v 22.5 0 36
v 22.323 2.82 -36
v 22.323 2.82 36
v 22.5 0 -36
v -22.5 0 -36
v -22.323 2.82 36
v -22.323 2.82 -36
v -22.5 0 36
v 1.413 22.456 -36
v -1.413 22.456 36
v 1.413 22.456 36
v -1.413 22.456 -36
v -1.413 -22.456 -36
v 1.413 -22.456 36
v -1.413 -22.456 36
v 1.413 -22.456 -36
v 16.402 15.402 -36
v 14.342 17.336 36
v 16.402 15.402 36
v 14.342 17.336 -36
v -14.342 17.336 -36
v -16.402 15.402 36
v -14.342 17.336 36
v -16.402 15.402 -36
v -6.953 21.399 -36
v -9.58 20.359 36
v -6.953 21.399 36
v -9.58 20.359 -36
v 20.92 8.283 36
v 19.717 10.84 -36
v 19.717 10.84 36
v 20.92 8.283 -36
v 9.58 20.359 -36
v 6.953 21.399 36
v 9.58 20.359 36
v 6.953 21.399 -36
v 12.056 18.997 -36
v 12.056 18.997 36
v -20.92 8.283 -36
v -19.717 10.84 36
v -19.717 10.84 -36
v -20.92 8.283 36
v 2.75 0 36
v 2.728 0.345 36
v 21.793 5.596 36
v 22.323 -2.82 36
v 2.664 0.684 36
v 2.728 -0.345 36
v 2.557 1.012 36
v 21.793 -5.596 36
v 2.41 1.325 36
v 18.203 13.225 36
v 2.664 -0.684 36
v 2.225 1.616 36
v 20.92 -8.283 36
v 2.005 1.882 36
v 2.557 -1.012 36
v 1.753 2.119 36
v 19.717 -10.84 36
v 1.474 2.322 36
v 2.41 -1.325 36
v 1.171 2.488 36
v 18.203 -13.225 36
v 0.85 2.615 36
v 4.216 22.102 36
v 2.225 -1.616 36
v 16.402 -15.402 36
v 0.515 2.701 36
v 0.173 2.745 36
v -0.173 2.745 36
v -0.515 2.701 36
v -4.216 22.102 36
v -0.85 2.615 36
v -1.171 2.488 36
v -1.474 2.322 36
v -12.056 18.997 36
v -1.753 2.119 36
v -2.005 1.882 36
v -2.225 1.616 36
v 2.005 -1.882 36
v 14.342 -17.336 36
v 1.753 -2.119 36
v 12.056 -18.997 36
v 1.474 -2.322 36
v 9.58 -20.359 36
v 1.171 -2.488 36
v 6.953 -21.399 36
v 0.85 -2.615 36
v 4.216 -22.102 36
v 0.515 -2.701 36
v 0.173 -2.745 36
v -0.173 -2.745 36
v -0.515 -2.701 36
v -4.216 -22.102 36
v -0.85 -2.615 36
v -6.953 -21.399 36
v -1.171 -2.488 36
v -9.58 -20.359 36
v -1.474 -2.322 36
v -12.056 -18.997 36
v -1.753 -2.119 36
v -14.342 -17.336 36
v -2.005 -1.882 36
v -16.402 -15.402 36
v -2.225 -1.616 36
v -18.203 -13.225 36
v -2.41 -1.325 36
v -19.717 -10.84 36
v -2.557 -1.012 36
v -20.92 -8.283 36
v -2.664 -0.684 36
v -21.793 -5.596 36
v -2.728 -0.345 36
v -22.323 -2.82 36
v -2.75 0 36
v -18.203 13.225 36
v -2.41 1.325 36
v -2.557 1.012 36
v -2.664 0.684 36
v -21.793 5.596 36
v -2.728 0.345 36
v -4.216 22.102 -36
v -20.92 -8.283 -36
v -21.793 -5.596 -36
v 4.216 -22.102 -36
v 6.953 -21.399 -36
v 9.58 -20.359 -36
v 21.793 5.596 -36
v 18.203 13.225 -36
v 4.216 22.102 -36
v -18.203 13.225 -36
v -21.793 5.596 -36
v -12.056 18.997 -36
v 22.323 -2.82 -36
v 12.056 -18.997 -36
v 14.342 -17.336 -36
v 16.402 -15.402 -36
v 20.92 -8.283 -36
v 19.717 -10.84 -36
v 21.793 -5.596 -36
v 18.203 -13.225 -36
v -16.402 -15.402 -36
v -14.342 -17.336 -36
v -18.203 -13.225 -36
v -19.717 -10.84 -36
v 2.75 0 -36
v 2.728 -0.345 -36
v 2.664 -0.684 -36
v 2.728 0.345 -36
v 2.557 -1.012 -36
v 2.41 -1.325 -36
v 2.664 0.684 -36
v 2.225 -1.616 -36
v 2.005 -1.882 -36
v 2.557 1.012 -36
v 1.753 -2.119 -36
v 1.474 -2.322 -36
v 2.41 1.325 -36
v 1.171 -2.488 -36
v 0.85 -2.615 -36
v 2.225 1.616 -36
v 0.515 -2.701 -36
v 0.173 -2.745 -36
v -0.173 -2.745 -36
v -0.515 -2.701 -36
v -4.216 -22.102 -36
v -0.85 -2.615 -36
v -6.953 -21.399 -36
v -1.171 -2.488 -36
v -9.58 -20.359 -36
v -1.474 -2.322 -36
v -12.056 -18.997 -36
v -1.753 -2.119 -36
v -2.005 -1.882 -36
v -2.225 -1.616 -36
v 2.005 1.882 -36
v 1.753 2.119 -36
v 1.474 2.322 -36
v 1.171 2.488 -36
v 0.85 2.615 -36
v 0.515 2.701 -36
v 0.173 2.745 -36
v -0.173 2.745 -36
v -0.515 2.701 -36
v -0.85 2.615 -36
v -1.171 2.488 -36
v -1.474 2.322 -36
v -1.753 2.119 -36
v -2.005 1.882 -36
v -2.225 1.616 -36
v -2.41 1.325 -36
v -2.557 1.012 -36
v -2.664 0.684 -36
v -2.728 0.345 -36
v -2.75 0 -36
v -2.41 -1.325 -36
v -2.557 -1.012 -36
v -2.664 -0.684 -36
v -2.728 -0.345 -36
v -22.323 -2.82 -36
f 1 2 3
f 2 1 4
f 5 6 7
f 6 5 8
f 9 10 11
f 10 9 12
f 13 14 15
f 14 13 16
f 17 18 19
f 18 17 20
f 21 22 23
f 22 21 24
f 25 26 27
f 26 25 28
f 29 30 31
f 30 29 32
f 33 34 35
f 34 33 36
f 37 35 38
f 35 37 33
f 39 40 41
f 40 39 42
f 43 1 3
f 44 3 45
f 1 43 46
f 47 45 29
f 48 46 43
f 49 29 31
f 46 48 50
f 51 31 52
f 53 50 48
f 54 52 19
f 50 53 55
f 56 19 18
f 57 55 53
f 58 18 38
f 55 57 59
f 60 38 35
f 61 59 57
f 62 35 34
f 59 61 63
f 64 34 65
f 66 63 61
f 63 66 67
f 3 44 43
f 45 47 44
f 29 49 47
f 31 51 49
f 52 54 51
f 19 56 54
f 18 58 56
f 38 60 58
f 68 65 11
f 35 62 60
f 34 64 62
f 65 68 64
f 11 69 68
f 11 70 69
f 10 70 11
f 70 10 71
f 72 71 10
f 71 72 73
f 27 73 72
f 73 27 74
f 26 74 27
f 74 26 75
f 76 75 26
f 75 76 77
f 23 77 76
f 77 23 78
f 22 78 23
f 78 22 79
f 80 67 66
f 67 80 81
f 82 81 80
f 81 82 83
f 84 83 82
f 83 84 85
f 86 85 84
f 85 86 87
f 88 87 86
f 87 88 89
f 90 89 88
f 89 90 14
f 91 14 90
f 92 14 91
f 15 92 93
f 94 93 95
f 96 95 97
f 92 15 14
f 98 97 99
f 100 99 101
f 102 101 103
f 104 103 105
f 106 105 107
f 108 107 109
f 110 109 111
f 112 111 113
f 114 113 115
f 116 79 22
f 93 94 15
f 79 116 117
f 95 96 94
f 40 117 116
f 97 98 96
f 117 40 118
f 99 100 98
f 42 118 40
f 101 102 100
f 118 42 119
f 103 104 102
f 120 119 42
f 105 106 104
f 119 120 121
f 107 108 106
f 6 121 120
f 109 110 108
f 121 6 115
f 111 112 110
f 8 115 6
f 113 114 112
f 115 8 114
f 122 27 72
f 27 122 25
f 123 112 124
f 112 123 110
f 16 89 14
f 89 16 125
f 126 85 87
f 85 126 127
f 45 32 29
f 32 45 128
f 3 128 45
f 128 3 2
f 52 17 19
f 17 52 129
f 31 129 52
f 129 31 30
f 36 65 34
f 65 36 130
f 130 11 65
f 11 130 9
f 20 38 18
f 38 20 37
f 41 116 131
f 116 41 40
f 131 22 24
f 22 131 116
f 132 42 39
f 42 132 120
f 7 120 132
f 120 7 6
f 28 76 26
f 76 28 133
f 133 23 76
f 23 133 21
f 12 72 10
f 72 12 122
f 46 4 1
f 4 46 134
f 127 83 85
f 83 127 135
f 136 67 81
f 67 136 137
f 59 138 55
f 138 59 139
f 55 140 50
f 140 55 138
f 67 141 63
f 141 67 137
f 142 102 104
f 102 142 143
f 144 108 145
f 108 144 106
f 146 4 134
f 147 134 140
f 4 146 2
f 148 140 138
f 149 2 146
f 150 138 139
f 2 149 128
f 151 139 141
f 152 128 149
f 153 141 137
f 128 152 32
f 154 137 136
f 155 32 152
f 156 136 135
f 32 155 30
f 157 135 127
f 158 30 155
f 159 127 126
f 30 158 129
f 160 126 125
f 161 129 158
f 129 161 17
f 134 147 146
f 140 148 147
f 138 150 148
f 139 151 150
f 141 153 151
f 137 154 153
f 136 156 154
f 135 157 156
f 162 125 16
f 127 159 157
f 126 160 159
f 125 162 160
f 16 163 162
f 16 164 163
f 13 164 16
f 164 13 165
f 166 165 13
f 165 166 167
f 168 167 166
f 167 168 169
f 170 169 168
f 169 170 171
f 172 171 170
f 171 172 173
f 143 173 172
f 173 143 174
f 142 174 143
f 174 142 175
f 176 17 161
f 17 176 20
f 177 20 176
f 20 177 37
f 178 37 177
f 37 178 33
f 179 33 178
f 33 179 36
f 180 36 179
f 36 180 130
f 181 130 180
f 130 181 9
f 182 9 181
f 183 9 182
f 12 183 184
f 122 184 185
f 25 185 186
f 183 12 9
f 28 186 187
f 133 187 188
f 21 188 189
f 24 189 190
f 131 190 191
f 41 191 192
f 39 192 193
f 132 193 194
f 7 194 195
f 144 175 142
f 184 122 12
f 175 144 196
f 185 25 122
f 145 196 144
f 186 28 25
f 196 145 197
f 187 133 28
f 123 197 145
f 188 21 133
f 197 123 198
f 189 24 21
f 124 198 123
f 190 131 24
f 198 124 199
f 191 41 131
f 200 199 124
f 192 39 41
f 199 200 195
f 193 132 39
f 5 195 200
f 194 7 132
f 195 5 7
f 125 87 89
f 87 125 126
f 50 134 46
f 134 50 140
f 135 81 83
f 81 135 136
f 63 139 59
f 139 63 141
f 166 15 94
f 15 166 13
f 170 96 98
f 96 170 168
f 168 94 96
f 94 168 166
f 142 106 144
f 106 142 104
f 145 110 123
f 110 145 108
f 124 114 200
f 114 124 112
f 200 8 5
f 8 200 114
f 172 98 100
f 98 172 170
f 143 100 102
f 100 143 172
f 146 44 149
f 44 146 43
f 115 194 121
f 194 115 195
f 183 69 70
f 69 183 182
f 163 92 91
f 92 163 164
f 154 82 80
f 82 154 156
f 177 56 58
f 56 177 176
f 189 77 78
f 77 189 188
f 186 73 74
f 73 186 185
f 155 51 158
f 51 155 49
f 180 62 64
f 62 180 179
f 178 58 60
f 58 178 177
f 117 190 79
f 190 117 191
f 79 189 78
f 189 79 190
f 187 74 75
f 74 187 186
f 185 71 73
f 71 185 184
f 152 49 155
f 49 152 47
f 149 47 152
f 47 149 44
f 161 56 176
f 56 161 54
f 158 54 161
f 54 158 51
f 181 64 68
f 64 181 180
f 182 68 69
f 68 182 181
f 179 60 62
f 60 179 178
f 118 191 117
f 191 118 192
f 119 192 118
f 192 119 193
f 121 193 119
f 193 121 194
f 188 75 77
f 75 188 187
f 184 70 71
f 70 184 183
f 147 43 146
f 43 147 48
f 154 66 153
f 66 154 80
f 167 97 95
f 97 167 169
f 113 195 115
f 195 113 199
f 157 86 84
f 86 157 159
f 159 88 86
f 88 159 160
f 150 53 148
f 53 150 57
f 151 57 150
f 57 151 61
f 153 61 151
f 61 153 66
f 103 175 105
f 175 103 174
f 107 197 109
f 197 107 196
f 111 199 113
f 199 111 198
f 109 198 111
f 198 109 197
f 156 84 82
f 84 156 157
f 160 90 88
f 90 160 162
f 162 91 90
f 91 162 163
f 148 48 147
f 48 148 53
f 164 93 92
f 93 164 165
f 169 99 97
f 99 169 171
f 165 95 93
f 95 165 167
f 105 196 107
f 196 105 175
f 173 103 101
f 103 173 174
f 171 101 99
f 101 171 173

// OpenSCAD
$fn = 50;


difference() {
	union() {
		translate(v = [0, 0, -36.0000000000]) {
			cylinder(h = 72, r = 22.5000000000);
		}
	}
	union() {
		translate(v = [0, 0, -100.0000000000]) {
			cylinder(h = 200, r = 2.7500000000);
		}
	}
}
